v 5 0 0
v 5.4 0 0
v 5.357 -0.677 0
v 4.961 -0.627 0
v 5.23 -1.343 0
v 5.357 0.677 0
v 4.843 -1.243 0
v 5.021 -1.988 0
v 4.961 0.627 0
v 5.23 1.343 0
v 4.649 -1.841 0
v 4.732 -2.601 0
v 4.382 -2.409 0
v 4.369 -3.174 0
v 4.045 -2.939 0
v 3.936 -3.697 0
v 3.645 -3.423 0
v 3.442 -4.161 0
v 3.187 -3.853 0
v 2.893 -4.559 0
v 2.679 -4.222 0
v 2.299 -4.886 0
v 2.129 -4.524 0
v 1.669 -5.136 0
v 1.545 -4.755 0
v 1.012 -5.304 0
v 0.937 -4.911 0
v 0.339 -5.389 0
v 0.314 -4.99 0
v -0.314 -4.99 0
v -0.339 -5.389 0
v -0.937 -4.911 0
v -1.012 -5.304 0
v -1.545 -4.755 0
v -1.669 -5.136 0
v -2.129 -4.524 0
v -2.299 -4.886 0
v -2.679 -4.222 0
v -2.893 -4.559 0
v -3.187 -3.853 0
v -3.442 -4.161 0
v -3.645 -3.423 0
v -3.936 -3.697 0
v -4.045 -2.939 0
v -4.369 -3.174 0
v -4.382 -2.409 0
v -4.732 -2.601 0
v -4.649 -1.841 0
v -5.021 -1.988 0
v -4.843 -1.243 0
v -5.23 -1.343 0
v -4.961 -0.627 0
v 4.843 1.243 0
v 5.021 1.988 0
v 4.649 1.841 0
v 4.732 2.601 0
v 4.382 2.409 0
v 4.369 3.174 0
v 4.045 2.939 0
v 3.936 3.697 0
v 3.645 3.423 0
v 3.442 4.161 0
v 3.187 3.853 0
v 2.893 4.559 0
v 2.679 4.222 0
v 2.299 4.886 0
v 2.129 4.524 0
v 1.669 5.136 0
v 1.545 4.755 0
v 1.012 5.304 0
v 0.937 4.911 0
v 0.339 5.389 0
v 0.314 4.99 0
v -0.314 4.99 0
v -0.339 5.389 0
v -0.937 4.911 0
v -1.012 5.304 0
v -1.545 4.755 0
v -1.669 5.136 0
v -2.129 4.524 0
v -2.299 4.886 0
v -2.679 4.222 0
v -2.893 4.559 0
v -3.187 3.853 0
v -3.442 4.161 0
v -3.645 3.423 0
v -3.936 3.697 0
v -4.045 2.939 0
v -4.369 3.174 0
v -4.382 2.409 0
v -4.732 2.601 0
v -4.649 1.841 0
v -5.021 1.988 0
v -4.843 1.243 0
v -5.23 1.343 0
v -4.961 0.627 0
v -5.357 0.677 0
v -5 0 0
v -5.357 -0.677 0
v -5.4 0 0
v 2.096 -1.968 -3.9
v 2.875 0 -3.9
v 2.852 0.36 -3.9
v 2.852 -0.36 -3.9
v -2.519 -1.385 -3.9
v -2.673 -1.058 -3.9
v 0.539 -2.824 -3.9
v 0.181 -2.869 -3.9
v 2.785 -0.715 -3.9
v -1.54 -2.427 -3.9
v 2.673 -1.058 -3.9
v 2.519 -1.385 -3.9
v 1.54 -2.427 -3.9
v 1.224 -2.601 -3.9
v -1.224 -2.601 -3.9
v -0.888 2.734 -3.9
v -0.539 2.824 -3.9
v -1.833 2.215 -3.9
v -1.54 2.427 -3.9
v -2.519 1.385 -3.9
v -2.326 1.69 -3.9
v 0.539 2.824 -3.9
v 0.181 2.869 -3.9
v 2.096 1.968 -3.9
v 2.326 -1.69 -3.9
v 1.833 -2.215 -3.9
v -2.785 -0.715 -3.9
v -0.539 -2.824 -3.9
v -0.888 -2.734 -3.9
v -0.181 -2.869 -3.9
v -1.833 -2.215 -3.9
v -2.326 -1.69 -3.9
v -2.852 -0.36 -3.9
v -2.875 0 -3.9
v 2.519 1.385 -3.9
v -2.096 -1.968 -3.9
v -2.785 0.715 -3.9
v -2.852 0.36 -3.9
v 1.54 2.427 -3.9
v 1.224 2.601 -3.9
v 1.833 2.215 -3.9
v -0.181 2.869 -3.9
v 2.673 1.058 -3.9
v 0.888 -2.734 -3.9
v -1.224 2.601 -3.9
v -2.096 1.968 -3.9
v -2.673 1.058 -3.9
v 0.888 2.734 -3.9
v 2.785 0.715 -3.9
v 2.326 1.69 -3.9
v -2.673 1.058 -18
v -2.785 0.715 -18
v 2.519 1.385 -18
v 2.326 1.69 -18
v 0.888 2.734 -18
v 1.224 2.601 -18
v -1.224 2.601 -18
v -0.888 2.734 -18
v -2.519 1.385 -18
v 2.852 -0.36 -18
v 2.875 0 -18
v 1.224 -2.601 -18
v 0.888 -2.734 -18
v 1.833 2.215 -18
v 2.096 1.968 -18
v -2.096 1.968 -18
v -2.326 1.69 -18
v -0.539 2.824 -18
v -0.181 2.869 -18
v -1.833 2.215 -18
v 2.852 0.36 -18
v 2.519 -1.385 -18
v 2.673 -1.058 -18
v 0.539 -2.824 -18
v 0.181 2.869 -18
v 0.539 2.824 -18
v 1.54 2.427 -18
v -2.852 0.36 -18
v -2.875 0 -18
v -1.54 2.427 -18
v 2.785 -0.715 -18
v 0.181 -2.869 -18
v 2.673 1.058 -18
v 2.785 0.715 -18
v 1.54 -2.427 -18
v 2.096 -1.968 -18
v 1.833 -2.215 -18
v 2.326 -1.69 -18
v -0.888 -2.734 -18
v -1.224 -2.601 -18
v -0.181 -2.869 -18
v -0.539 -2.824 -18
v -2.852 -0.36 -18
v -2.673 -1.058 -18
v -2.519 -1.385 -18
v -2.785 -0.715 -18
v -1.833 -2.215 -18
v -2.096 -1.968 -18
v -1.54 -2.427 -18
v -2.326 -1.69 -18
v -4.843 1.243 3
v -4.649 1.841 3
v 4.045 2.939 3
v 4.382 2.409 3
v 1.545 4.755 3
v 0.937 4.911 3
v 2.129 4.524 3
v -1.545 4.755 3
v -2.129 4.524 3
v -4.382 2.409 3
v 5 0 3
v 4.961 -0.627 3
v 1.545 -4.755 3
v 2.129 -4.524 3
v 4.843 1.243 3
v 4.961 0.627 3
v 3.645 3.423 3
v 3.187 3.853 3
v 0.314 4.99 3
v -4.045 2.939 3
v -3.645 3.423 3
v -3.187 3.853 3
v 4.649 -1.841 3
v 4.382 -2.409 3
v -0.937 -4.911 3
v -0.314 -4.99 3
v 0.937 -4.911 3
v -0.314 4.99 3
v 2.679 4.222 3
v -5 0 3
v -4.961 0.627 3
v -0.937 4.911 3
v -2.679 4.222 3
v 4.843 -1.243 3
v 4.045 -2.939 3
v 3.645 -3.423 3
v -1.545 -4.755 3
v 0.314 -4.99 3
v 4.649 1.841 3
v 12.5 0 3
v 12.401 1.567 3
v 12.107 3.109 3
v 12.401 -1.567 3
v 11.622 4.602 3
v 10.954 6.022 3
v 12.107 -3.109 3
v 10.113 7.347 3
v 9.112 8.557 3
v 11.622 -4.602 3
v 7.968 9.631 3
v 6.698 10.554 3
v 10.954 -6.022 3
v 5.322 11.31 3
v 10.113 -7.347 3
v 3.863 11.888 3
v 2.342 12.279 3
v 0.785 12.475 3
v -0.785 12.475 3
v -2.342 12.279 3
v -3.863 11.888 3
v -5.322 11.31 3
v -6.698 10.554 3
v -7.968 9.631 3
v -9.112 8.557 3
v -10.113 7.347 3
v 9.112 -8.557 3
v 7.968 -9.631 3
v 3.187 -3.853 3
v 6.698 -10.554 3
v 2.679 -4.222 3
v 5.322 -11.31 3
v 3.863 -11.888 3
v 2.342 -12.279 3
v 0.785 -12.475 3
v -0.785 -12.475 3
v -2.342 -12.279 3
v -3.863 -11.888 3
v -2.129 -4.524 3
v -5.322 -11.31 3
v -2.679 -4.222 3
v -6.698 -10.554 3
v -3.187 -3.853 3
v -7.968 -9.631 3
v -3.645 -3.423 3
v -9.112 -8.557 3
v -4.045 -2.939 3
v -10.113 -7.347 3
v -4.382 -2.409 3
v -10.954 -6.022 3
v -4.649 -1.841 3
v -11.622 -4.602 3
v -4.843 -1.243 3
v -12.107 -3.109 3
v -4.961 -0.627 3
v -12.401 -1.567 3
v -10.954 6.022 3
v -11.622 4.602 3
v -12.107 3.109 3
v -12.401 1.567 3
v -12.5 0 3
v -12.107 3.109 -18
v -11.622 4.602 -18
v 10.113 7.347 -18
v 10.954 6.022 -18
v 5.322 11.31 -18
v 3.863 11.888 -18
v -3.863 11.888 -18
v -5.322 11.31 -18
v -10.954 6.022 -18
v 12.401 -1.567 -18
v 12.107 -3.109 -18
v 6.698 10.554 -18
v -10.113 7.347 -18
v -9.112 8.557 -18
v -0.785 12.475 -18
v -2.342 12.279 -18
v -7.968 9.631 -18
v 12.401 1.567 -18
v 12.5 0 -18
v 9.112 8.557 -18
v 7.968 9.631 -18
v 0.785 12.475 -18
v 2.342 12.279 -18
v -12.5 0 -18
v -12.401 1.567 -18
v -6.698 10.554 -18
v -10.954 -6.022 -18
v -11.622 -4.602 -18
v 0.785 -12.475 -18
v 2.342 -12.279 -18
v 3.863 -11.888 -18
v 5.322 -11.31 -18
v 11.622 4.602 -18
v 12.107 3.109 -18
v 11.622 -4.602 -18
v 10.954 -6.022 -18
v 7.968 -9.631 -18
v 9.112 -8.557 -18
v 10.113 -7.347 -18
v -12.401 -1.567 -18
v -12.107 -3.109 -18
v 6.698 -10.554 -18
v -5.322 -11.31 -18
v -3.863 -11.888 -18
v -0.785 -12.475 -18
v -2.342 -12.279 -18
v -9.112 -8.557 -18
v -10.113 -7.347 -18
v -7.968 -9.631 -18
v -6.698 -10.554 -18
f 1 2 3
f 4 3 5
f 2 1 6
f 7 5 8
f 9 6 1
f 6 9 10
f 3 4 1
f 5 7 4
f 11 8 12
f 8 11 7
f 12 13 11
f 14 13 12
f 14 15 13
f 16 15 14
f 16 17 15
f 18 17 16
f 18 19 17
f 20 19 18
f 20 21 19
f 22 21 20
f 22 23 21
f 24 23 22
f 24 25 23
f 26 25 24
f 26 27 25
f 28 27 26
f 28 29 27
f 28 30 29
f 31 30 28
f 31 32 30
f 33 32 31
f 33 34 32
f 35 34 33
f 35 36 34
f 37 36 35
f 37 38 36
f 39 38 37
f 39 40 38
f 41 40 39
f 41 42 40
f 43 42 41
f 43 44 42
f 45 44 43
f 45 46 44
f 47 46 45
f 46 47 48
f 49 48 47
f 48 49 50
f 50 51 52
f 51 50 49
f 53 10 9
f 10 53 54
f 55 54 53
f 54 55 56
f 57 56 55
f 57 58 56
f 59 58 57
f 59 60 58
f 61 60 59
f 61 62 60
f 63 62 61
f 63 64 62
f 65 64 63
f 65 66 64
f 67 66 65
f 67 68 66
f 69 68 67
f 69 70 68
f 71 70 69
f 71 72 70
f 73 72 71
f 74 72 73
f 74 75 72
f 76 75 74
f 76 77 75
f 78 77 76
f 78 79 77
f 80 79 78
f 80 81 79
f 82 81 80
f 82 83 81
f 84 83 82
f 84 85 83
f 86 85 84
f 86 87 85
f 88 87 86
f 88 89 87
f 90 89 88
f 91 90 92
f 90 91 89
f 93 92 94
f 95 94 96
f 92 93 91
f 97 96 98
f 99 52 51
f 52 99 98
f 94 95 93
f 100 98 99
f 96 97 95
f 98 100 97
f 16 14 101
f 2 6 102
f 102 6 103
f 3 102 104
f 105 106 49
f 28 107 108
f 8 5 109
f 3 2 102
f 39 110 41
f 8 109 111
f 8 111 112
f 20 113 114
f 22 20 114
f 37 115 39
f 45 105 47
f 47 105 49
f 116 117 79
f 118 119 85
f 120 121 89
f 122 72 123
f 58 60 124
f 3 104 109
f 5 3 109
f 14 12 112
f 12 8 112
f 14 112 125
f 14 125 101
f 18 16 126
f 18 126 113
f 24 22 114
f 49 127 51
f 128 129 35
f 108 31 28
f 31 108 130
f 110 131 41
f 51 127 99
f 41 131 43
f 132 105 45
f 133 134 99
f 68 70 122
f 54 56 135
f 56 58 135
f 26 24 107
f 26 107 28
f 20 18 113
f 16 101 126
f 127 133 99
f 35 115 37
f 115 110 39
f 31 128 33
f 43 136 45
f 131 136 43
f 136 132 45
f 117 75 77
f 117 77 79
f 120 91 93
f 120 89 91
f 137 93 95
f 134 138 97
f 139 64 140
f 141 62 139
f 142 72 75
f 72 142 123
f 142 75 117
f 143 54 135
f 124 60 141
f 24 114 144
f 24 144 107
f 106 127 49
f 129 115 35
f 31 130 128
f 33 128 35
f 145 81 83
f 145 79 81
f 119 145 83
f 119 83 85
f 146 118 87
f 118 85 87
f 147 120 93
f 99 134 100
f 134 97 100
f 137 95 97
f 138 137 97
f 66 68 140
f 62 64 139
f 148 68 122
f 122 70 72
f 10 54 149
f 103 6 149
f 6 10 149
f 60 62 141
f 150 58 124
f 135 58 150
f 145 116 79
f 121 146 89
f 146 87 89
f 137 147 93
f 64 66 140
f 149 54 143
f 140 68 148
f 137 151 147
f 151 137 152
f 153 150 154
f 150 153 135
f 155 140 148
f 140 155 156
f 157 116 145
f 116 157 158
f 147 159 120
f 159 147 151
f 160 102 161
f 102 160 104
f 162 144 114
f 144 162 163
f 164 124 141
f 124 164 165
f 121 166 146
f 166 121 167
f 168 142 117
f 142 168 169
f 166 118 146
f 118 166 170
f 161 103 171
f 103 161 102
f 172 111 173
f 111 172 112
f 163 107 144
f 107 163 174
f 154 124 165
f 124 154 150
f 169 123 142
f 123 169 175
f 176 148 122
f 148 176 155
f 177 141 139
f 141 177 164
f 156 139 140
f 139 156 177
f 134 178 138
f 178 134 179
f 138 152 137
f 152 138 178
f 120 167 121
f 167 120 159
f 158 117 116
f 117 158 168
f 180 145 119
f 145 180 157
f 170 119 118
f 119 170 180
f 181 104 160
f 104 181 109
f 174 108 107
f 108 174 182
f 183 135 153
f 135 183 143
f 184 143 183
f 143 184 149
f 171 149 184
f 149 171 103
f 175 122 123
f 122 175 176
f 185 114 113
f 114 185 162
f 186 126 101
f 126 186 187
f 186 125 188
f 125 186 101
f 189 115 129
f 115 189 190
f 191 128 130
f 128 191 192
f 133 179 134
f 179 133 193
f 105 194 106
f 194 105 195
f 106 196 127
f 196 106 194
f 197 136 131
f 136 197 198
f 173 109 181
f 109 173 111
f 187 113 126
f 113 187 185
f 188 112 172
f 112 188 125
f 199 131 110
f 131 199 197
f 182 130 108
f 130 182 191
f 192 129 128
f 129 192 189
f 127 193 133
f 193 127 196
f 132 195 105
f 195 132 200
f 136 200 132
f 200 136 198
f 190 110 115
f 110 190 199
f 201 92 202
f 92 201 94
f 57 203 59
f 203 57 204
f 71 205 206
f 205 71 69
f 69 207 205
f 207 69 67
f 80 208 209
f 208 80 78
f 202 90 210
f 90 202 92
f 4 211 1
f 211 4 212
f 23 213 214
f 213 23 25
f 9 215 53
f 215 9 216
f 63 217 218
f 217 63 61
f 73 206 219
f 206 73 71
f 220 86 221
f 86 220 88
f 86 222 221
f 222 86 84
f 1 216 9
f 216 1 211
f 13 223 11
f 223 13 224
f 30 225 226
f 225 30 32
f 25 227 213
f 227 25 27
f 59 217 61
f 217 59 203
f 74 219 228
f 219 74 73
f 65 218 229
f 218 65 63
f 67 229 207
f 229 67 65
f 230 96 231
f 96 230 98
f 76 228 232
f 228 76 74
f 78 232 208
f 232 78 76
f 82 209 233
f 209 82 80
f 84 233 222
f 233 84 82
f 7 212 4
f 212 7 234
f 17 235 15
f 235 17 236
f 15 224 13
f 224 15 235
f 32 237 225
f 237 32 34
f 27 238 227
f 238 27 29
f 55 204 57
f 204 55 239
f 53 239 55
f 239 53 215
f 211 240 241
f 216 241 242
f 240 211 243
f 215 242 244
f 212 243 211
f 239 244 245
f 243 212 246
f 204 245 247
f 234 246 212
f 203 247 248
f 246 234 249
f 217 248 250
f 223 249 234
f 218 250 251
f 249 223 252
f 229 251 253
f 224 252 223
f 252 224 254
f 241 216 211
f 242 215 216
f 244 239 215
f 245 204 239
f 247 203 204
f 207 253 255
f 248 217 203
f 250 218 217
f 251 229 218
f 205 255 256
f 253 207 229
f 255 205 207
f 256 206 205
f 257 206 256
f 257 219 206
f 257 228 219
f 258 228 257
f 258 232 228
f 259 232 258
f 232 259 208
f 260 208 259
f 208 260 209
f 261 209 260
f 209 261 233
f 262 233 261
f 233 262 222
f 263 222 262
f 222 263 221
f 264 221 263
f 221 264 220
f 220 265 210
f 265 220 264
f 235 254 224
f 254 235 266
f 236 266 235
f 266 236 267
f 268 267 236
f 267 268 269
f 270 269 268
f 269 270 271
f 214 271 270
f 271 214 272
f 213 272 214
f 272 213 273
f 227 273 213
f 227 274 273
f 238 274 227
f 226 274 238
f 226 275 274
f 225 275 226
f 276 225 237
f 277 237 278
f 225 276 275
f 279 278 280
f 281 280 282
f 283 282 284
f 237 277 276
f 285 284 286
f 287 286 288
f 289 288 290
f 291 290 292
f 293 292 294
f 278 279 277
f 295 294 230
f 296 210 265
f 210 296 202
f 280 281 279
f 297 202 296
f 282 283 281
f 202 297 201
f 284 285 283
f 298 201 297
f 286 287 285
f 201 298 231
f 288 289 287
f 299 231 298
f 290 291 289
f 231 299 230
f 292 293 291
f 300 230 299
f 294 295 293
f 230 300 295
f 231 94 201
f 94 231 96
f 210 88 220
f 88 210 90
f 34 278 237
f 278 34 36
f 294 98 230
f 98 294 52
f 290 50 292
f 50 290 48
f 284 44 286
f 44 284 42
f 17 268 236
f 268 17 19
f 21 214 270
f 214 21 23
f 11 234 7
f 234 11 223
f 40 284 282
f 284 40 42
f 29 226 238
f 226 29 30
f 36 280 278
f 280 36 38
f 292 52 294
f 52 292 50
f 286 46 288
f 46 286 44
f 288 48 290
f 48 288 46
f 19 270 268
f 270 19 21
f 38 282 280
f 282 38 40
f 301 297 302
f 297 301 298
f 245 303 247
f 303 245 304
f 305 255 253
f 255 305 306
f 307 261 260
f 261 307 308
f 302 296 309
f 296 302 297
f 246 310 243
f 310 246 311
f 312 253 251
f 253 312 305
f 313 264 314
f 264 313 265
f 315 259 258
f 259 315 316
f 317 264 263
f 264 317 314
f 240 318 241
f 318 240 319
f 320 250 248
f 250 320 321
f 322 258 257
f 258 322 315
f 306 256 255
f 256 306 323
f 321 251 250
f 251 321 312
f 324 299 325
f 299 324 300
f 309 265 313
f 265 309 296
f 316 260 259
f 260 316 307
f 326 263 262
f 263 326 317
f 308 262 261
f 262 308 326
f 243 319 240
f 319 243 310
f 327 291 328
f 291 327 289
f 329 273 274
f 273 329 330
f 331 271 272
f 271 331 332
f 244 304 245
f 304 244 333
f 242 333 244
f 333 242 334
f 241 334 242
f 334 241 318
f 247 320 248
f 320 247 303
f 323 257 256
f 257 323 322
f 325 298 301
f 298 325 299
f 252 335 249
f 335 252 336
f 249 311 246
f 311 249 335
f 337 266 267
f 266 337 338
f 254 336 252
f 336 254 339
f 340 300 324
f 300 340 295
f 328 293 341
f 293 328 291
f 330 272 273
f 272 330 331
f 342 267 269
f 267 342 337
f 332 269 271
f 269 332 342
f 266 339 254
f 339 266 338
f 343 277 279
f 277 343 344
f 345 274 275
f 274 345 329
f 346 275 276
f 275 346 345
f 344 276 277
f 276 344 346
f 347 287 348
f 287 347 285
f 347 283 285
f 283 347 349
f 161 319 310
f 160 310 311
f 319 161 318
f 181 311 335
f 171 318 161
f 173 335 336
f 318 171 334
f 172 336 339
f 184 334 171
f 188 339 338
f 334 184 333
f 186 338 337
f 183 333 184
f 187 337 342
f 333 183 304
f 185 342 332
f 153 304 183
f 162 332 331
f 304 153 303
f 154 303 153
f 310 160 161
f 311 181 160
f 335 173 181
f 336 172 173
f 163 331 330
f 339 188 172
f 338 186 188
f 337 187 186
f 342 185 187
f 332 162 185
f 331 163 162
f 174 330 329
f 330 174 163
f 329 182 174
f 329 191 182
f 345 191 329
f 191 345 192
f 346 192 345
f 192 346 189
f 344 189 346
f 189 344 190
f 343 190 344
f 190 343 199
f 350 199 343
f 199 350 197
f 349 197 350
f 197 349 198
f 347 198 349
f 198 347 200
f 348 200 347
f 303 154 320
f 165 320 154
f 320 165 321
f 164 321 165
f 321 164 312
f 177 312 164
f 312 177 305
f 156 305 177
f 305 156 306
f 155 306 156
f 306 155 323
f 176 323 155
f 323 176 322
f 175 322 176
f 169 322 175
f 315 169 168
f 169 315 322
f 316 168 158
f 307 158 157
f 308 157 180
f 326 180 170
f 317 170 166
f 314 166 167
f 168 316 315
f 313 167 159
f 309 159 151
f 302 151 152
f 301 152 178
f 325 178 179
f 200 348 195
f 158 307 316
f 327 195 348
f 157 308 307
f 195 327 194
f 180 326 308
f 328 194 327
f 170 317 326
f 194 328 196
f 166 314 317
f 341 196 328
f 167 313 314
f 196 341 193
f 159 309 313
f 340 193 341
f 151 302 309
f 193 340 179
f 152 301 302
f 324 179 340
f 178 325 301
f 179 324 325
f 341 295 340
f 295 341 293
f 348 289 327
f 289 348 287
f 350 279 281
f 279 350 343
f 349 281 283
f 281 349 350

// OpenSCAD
$fn = 50;

difference() {
	union() {
		translate(v = [0, 0, -18.0]) {
			cylinder(h = 21, r = 12.5);
		}
	}
	union() {
		translate(v = [0, 0, 0]) {
			rotate(a = [0, 0, 0]) {
				difference() {
					union() {
						translate(v = [0, 0, -21.0]) {
							cylinder(h = 21, r = 2.6);
						}
						translate(v = [0, 0, -3.9]) {
							cylinder(h = 3.9, r1 = 2.875, r2 = 5.4);
						}
						translate(v = [0, 0, -21.0]) {
							cylinder(h = 21, r = 2.875);
						}
						translate(v = [0, 0, -21.0]) {
							cylinder(h = 21, r = 2.6);
						}
					}
					union();
				}
			}
		}
		#cylinder(h = 3, r = 5.0);
	}
}
